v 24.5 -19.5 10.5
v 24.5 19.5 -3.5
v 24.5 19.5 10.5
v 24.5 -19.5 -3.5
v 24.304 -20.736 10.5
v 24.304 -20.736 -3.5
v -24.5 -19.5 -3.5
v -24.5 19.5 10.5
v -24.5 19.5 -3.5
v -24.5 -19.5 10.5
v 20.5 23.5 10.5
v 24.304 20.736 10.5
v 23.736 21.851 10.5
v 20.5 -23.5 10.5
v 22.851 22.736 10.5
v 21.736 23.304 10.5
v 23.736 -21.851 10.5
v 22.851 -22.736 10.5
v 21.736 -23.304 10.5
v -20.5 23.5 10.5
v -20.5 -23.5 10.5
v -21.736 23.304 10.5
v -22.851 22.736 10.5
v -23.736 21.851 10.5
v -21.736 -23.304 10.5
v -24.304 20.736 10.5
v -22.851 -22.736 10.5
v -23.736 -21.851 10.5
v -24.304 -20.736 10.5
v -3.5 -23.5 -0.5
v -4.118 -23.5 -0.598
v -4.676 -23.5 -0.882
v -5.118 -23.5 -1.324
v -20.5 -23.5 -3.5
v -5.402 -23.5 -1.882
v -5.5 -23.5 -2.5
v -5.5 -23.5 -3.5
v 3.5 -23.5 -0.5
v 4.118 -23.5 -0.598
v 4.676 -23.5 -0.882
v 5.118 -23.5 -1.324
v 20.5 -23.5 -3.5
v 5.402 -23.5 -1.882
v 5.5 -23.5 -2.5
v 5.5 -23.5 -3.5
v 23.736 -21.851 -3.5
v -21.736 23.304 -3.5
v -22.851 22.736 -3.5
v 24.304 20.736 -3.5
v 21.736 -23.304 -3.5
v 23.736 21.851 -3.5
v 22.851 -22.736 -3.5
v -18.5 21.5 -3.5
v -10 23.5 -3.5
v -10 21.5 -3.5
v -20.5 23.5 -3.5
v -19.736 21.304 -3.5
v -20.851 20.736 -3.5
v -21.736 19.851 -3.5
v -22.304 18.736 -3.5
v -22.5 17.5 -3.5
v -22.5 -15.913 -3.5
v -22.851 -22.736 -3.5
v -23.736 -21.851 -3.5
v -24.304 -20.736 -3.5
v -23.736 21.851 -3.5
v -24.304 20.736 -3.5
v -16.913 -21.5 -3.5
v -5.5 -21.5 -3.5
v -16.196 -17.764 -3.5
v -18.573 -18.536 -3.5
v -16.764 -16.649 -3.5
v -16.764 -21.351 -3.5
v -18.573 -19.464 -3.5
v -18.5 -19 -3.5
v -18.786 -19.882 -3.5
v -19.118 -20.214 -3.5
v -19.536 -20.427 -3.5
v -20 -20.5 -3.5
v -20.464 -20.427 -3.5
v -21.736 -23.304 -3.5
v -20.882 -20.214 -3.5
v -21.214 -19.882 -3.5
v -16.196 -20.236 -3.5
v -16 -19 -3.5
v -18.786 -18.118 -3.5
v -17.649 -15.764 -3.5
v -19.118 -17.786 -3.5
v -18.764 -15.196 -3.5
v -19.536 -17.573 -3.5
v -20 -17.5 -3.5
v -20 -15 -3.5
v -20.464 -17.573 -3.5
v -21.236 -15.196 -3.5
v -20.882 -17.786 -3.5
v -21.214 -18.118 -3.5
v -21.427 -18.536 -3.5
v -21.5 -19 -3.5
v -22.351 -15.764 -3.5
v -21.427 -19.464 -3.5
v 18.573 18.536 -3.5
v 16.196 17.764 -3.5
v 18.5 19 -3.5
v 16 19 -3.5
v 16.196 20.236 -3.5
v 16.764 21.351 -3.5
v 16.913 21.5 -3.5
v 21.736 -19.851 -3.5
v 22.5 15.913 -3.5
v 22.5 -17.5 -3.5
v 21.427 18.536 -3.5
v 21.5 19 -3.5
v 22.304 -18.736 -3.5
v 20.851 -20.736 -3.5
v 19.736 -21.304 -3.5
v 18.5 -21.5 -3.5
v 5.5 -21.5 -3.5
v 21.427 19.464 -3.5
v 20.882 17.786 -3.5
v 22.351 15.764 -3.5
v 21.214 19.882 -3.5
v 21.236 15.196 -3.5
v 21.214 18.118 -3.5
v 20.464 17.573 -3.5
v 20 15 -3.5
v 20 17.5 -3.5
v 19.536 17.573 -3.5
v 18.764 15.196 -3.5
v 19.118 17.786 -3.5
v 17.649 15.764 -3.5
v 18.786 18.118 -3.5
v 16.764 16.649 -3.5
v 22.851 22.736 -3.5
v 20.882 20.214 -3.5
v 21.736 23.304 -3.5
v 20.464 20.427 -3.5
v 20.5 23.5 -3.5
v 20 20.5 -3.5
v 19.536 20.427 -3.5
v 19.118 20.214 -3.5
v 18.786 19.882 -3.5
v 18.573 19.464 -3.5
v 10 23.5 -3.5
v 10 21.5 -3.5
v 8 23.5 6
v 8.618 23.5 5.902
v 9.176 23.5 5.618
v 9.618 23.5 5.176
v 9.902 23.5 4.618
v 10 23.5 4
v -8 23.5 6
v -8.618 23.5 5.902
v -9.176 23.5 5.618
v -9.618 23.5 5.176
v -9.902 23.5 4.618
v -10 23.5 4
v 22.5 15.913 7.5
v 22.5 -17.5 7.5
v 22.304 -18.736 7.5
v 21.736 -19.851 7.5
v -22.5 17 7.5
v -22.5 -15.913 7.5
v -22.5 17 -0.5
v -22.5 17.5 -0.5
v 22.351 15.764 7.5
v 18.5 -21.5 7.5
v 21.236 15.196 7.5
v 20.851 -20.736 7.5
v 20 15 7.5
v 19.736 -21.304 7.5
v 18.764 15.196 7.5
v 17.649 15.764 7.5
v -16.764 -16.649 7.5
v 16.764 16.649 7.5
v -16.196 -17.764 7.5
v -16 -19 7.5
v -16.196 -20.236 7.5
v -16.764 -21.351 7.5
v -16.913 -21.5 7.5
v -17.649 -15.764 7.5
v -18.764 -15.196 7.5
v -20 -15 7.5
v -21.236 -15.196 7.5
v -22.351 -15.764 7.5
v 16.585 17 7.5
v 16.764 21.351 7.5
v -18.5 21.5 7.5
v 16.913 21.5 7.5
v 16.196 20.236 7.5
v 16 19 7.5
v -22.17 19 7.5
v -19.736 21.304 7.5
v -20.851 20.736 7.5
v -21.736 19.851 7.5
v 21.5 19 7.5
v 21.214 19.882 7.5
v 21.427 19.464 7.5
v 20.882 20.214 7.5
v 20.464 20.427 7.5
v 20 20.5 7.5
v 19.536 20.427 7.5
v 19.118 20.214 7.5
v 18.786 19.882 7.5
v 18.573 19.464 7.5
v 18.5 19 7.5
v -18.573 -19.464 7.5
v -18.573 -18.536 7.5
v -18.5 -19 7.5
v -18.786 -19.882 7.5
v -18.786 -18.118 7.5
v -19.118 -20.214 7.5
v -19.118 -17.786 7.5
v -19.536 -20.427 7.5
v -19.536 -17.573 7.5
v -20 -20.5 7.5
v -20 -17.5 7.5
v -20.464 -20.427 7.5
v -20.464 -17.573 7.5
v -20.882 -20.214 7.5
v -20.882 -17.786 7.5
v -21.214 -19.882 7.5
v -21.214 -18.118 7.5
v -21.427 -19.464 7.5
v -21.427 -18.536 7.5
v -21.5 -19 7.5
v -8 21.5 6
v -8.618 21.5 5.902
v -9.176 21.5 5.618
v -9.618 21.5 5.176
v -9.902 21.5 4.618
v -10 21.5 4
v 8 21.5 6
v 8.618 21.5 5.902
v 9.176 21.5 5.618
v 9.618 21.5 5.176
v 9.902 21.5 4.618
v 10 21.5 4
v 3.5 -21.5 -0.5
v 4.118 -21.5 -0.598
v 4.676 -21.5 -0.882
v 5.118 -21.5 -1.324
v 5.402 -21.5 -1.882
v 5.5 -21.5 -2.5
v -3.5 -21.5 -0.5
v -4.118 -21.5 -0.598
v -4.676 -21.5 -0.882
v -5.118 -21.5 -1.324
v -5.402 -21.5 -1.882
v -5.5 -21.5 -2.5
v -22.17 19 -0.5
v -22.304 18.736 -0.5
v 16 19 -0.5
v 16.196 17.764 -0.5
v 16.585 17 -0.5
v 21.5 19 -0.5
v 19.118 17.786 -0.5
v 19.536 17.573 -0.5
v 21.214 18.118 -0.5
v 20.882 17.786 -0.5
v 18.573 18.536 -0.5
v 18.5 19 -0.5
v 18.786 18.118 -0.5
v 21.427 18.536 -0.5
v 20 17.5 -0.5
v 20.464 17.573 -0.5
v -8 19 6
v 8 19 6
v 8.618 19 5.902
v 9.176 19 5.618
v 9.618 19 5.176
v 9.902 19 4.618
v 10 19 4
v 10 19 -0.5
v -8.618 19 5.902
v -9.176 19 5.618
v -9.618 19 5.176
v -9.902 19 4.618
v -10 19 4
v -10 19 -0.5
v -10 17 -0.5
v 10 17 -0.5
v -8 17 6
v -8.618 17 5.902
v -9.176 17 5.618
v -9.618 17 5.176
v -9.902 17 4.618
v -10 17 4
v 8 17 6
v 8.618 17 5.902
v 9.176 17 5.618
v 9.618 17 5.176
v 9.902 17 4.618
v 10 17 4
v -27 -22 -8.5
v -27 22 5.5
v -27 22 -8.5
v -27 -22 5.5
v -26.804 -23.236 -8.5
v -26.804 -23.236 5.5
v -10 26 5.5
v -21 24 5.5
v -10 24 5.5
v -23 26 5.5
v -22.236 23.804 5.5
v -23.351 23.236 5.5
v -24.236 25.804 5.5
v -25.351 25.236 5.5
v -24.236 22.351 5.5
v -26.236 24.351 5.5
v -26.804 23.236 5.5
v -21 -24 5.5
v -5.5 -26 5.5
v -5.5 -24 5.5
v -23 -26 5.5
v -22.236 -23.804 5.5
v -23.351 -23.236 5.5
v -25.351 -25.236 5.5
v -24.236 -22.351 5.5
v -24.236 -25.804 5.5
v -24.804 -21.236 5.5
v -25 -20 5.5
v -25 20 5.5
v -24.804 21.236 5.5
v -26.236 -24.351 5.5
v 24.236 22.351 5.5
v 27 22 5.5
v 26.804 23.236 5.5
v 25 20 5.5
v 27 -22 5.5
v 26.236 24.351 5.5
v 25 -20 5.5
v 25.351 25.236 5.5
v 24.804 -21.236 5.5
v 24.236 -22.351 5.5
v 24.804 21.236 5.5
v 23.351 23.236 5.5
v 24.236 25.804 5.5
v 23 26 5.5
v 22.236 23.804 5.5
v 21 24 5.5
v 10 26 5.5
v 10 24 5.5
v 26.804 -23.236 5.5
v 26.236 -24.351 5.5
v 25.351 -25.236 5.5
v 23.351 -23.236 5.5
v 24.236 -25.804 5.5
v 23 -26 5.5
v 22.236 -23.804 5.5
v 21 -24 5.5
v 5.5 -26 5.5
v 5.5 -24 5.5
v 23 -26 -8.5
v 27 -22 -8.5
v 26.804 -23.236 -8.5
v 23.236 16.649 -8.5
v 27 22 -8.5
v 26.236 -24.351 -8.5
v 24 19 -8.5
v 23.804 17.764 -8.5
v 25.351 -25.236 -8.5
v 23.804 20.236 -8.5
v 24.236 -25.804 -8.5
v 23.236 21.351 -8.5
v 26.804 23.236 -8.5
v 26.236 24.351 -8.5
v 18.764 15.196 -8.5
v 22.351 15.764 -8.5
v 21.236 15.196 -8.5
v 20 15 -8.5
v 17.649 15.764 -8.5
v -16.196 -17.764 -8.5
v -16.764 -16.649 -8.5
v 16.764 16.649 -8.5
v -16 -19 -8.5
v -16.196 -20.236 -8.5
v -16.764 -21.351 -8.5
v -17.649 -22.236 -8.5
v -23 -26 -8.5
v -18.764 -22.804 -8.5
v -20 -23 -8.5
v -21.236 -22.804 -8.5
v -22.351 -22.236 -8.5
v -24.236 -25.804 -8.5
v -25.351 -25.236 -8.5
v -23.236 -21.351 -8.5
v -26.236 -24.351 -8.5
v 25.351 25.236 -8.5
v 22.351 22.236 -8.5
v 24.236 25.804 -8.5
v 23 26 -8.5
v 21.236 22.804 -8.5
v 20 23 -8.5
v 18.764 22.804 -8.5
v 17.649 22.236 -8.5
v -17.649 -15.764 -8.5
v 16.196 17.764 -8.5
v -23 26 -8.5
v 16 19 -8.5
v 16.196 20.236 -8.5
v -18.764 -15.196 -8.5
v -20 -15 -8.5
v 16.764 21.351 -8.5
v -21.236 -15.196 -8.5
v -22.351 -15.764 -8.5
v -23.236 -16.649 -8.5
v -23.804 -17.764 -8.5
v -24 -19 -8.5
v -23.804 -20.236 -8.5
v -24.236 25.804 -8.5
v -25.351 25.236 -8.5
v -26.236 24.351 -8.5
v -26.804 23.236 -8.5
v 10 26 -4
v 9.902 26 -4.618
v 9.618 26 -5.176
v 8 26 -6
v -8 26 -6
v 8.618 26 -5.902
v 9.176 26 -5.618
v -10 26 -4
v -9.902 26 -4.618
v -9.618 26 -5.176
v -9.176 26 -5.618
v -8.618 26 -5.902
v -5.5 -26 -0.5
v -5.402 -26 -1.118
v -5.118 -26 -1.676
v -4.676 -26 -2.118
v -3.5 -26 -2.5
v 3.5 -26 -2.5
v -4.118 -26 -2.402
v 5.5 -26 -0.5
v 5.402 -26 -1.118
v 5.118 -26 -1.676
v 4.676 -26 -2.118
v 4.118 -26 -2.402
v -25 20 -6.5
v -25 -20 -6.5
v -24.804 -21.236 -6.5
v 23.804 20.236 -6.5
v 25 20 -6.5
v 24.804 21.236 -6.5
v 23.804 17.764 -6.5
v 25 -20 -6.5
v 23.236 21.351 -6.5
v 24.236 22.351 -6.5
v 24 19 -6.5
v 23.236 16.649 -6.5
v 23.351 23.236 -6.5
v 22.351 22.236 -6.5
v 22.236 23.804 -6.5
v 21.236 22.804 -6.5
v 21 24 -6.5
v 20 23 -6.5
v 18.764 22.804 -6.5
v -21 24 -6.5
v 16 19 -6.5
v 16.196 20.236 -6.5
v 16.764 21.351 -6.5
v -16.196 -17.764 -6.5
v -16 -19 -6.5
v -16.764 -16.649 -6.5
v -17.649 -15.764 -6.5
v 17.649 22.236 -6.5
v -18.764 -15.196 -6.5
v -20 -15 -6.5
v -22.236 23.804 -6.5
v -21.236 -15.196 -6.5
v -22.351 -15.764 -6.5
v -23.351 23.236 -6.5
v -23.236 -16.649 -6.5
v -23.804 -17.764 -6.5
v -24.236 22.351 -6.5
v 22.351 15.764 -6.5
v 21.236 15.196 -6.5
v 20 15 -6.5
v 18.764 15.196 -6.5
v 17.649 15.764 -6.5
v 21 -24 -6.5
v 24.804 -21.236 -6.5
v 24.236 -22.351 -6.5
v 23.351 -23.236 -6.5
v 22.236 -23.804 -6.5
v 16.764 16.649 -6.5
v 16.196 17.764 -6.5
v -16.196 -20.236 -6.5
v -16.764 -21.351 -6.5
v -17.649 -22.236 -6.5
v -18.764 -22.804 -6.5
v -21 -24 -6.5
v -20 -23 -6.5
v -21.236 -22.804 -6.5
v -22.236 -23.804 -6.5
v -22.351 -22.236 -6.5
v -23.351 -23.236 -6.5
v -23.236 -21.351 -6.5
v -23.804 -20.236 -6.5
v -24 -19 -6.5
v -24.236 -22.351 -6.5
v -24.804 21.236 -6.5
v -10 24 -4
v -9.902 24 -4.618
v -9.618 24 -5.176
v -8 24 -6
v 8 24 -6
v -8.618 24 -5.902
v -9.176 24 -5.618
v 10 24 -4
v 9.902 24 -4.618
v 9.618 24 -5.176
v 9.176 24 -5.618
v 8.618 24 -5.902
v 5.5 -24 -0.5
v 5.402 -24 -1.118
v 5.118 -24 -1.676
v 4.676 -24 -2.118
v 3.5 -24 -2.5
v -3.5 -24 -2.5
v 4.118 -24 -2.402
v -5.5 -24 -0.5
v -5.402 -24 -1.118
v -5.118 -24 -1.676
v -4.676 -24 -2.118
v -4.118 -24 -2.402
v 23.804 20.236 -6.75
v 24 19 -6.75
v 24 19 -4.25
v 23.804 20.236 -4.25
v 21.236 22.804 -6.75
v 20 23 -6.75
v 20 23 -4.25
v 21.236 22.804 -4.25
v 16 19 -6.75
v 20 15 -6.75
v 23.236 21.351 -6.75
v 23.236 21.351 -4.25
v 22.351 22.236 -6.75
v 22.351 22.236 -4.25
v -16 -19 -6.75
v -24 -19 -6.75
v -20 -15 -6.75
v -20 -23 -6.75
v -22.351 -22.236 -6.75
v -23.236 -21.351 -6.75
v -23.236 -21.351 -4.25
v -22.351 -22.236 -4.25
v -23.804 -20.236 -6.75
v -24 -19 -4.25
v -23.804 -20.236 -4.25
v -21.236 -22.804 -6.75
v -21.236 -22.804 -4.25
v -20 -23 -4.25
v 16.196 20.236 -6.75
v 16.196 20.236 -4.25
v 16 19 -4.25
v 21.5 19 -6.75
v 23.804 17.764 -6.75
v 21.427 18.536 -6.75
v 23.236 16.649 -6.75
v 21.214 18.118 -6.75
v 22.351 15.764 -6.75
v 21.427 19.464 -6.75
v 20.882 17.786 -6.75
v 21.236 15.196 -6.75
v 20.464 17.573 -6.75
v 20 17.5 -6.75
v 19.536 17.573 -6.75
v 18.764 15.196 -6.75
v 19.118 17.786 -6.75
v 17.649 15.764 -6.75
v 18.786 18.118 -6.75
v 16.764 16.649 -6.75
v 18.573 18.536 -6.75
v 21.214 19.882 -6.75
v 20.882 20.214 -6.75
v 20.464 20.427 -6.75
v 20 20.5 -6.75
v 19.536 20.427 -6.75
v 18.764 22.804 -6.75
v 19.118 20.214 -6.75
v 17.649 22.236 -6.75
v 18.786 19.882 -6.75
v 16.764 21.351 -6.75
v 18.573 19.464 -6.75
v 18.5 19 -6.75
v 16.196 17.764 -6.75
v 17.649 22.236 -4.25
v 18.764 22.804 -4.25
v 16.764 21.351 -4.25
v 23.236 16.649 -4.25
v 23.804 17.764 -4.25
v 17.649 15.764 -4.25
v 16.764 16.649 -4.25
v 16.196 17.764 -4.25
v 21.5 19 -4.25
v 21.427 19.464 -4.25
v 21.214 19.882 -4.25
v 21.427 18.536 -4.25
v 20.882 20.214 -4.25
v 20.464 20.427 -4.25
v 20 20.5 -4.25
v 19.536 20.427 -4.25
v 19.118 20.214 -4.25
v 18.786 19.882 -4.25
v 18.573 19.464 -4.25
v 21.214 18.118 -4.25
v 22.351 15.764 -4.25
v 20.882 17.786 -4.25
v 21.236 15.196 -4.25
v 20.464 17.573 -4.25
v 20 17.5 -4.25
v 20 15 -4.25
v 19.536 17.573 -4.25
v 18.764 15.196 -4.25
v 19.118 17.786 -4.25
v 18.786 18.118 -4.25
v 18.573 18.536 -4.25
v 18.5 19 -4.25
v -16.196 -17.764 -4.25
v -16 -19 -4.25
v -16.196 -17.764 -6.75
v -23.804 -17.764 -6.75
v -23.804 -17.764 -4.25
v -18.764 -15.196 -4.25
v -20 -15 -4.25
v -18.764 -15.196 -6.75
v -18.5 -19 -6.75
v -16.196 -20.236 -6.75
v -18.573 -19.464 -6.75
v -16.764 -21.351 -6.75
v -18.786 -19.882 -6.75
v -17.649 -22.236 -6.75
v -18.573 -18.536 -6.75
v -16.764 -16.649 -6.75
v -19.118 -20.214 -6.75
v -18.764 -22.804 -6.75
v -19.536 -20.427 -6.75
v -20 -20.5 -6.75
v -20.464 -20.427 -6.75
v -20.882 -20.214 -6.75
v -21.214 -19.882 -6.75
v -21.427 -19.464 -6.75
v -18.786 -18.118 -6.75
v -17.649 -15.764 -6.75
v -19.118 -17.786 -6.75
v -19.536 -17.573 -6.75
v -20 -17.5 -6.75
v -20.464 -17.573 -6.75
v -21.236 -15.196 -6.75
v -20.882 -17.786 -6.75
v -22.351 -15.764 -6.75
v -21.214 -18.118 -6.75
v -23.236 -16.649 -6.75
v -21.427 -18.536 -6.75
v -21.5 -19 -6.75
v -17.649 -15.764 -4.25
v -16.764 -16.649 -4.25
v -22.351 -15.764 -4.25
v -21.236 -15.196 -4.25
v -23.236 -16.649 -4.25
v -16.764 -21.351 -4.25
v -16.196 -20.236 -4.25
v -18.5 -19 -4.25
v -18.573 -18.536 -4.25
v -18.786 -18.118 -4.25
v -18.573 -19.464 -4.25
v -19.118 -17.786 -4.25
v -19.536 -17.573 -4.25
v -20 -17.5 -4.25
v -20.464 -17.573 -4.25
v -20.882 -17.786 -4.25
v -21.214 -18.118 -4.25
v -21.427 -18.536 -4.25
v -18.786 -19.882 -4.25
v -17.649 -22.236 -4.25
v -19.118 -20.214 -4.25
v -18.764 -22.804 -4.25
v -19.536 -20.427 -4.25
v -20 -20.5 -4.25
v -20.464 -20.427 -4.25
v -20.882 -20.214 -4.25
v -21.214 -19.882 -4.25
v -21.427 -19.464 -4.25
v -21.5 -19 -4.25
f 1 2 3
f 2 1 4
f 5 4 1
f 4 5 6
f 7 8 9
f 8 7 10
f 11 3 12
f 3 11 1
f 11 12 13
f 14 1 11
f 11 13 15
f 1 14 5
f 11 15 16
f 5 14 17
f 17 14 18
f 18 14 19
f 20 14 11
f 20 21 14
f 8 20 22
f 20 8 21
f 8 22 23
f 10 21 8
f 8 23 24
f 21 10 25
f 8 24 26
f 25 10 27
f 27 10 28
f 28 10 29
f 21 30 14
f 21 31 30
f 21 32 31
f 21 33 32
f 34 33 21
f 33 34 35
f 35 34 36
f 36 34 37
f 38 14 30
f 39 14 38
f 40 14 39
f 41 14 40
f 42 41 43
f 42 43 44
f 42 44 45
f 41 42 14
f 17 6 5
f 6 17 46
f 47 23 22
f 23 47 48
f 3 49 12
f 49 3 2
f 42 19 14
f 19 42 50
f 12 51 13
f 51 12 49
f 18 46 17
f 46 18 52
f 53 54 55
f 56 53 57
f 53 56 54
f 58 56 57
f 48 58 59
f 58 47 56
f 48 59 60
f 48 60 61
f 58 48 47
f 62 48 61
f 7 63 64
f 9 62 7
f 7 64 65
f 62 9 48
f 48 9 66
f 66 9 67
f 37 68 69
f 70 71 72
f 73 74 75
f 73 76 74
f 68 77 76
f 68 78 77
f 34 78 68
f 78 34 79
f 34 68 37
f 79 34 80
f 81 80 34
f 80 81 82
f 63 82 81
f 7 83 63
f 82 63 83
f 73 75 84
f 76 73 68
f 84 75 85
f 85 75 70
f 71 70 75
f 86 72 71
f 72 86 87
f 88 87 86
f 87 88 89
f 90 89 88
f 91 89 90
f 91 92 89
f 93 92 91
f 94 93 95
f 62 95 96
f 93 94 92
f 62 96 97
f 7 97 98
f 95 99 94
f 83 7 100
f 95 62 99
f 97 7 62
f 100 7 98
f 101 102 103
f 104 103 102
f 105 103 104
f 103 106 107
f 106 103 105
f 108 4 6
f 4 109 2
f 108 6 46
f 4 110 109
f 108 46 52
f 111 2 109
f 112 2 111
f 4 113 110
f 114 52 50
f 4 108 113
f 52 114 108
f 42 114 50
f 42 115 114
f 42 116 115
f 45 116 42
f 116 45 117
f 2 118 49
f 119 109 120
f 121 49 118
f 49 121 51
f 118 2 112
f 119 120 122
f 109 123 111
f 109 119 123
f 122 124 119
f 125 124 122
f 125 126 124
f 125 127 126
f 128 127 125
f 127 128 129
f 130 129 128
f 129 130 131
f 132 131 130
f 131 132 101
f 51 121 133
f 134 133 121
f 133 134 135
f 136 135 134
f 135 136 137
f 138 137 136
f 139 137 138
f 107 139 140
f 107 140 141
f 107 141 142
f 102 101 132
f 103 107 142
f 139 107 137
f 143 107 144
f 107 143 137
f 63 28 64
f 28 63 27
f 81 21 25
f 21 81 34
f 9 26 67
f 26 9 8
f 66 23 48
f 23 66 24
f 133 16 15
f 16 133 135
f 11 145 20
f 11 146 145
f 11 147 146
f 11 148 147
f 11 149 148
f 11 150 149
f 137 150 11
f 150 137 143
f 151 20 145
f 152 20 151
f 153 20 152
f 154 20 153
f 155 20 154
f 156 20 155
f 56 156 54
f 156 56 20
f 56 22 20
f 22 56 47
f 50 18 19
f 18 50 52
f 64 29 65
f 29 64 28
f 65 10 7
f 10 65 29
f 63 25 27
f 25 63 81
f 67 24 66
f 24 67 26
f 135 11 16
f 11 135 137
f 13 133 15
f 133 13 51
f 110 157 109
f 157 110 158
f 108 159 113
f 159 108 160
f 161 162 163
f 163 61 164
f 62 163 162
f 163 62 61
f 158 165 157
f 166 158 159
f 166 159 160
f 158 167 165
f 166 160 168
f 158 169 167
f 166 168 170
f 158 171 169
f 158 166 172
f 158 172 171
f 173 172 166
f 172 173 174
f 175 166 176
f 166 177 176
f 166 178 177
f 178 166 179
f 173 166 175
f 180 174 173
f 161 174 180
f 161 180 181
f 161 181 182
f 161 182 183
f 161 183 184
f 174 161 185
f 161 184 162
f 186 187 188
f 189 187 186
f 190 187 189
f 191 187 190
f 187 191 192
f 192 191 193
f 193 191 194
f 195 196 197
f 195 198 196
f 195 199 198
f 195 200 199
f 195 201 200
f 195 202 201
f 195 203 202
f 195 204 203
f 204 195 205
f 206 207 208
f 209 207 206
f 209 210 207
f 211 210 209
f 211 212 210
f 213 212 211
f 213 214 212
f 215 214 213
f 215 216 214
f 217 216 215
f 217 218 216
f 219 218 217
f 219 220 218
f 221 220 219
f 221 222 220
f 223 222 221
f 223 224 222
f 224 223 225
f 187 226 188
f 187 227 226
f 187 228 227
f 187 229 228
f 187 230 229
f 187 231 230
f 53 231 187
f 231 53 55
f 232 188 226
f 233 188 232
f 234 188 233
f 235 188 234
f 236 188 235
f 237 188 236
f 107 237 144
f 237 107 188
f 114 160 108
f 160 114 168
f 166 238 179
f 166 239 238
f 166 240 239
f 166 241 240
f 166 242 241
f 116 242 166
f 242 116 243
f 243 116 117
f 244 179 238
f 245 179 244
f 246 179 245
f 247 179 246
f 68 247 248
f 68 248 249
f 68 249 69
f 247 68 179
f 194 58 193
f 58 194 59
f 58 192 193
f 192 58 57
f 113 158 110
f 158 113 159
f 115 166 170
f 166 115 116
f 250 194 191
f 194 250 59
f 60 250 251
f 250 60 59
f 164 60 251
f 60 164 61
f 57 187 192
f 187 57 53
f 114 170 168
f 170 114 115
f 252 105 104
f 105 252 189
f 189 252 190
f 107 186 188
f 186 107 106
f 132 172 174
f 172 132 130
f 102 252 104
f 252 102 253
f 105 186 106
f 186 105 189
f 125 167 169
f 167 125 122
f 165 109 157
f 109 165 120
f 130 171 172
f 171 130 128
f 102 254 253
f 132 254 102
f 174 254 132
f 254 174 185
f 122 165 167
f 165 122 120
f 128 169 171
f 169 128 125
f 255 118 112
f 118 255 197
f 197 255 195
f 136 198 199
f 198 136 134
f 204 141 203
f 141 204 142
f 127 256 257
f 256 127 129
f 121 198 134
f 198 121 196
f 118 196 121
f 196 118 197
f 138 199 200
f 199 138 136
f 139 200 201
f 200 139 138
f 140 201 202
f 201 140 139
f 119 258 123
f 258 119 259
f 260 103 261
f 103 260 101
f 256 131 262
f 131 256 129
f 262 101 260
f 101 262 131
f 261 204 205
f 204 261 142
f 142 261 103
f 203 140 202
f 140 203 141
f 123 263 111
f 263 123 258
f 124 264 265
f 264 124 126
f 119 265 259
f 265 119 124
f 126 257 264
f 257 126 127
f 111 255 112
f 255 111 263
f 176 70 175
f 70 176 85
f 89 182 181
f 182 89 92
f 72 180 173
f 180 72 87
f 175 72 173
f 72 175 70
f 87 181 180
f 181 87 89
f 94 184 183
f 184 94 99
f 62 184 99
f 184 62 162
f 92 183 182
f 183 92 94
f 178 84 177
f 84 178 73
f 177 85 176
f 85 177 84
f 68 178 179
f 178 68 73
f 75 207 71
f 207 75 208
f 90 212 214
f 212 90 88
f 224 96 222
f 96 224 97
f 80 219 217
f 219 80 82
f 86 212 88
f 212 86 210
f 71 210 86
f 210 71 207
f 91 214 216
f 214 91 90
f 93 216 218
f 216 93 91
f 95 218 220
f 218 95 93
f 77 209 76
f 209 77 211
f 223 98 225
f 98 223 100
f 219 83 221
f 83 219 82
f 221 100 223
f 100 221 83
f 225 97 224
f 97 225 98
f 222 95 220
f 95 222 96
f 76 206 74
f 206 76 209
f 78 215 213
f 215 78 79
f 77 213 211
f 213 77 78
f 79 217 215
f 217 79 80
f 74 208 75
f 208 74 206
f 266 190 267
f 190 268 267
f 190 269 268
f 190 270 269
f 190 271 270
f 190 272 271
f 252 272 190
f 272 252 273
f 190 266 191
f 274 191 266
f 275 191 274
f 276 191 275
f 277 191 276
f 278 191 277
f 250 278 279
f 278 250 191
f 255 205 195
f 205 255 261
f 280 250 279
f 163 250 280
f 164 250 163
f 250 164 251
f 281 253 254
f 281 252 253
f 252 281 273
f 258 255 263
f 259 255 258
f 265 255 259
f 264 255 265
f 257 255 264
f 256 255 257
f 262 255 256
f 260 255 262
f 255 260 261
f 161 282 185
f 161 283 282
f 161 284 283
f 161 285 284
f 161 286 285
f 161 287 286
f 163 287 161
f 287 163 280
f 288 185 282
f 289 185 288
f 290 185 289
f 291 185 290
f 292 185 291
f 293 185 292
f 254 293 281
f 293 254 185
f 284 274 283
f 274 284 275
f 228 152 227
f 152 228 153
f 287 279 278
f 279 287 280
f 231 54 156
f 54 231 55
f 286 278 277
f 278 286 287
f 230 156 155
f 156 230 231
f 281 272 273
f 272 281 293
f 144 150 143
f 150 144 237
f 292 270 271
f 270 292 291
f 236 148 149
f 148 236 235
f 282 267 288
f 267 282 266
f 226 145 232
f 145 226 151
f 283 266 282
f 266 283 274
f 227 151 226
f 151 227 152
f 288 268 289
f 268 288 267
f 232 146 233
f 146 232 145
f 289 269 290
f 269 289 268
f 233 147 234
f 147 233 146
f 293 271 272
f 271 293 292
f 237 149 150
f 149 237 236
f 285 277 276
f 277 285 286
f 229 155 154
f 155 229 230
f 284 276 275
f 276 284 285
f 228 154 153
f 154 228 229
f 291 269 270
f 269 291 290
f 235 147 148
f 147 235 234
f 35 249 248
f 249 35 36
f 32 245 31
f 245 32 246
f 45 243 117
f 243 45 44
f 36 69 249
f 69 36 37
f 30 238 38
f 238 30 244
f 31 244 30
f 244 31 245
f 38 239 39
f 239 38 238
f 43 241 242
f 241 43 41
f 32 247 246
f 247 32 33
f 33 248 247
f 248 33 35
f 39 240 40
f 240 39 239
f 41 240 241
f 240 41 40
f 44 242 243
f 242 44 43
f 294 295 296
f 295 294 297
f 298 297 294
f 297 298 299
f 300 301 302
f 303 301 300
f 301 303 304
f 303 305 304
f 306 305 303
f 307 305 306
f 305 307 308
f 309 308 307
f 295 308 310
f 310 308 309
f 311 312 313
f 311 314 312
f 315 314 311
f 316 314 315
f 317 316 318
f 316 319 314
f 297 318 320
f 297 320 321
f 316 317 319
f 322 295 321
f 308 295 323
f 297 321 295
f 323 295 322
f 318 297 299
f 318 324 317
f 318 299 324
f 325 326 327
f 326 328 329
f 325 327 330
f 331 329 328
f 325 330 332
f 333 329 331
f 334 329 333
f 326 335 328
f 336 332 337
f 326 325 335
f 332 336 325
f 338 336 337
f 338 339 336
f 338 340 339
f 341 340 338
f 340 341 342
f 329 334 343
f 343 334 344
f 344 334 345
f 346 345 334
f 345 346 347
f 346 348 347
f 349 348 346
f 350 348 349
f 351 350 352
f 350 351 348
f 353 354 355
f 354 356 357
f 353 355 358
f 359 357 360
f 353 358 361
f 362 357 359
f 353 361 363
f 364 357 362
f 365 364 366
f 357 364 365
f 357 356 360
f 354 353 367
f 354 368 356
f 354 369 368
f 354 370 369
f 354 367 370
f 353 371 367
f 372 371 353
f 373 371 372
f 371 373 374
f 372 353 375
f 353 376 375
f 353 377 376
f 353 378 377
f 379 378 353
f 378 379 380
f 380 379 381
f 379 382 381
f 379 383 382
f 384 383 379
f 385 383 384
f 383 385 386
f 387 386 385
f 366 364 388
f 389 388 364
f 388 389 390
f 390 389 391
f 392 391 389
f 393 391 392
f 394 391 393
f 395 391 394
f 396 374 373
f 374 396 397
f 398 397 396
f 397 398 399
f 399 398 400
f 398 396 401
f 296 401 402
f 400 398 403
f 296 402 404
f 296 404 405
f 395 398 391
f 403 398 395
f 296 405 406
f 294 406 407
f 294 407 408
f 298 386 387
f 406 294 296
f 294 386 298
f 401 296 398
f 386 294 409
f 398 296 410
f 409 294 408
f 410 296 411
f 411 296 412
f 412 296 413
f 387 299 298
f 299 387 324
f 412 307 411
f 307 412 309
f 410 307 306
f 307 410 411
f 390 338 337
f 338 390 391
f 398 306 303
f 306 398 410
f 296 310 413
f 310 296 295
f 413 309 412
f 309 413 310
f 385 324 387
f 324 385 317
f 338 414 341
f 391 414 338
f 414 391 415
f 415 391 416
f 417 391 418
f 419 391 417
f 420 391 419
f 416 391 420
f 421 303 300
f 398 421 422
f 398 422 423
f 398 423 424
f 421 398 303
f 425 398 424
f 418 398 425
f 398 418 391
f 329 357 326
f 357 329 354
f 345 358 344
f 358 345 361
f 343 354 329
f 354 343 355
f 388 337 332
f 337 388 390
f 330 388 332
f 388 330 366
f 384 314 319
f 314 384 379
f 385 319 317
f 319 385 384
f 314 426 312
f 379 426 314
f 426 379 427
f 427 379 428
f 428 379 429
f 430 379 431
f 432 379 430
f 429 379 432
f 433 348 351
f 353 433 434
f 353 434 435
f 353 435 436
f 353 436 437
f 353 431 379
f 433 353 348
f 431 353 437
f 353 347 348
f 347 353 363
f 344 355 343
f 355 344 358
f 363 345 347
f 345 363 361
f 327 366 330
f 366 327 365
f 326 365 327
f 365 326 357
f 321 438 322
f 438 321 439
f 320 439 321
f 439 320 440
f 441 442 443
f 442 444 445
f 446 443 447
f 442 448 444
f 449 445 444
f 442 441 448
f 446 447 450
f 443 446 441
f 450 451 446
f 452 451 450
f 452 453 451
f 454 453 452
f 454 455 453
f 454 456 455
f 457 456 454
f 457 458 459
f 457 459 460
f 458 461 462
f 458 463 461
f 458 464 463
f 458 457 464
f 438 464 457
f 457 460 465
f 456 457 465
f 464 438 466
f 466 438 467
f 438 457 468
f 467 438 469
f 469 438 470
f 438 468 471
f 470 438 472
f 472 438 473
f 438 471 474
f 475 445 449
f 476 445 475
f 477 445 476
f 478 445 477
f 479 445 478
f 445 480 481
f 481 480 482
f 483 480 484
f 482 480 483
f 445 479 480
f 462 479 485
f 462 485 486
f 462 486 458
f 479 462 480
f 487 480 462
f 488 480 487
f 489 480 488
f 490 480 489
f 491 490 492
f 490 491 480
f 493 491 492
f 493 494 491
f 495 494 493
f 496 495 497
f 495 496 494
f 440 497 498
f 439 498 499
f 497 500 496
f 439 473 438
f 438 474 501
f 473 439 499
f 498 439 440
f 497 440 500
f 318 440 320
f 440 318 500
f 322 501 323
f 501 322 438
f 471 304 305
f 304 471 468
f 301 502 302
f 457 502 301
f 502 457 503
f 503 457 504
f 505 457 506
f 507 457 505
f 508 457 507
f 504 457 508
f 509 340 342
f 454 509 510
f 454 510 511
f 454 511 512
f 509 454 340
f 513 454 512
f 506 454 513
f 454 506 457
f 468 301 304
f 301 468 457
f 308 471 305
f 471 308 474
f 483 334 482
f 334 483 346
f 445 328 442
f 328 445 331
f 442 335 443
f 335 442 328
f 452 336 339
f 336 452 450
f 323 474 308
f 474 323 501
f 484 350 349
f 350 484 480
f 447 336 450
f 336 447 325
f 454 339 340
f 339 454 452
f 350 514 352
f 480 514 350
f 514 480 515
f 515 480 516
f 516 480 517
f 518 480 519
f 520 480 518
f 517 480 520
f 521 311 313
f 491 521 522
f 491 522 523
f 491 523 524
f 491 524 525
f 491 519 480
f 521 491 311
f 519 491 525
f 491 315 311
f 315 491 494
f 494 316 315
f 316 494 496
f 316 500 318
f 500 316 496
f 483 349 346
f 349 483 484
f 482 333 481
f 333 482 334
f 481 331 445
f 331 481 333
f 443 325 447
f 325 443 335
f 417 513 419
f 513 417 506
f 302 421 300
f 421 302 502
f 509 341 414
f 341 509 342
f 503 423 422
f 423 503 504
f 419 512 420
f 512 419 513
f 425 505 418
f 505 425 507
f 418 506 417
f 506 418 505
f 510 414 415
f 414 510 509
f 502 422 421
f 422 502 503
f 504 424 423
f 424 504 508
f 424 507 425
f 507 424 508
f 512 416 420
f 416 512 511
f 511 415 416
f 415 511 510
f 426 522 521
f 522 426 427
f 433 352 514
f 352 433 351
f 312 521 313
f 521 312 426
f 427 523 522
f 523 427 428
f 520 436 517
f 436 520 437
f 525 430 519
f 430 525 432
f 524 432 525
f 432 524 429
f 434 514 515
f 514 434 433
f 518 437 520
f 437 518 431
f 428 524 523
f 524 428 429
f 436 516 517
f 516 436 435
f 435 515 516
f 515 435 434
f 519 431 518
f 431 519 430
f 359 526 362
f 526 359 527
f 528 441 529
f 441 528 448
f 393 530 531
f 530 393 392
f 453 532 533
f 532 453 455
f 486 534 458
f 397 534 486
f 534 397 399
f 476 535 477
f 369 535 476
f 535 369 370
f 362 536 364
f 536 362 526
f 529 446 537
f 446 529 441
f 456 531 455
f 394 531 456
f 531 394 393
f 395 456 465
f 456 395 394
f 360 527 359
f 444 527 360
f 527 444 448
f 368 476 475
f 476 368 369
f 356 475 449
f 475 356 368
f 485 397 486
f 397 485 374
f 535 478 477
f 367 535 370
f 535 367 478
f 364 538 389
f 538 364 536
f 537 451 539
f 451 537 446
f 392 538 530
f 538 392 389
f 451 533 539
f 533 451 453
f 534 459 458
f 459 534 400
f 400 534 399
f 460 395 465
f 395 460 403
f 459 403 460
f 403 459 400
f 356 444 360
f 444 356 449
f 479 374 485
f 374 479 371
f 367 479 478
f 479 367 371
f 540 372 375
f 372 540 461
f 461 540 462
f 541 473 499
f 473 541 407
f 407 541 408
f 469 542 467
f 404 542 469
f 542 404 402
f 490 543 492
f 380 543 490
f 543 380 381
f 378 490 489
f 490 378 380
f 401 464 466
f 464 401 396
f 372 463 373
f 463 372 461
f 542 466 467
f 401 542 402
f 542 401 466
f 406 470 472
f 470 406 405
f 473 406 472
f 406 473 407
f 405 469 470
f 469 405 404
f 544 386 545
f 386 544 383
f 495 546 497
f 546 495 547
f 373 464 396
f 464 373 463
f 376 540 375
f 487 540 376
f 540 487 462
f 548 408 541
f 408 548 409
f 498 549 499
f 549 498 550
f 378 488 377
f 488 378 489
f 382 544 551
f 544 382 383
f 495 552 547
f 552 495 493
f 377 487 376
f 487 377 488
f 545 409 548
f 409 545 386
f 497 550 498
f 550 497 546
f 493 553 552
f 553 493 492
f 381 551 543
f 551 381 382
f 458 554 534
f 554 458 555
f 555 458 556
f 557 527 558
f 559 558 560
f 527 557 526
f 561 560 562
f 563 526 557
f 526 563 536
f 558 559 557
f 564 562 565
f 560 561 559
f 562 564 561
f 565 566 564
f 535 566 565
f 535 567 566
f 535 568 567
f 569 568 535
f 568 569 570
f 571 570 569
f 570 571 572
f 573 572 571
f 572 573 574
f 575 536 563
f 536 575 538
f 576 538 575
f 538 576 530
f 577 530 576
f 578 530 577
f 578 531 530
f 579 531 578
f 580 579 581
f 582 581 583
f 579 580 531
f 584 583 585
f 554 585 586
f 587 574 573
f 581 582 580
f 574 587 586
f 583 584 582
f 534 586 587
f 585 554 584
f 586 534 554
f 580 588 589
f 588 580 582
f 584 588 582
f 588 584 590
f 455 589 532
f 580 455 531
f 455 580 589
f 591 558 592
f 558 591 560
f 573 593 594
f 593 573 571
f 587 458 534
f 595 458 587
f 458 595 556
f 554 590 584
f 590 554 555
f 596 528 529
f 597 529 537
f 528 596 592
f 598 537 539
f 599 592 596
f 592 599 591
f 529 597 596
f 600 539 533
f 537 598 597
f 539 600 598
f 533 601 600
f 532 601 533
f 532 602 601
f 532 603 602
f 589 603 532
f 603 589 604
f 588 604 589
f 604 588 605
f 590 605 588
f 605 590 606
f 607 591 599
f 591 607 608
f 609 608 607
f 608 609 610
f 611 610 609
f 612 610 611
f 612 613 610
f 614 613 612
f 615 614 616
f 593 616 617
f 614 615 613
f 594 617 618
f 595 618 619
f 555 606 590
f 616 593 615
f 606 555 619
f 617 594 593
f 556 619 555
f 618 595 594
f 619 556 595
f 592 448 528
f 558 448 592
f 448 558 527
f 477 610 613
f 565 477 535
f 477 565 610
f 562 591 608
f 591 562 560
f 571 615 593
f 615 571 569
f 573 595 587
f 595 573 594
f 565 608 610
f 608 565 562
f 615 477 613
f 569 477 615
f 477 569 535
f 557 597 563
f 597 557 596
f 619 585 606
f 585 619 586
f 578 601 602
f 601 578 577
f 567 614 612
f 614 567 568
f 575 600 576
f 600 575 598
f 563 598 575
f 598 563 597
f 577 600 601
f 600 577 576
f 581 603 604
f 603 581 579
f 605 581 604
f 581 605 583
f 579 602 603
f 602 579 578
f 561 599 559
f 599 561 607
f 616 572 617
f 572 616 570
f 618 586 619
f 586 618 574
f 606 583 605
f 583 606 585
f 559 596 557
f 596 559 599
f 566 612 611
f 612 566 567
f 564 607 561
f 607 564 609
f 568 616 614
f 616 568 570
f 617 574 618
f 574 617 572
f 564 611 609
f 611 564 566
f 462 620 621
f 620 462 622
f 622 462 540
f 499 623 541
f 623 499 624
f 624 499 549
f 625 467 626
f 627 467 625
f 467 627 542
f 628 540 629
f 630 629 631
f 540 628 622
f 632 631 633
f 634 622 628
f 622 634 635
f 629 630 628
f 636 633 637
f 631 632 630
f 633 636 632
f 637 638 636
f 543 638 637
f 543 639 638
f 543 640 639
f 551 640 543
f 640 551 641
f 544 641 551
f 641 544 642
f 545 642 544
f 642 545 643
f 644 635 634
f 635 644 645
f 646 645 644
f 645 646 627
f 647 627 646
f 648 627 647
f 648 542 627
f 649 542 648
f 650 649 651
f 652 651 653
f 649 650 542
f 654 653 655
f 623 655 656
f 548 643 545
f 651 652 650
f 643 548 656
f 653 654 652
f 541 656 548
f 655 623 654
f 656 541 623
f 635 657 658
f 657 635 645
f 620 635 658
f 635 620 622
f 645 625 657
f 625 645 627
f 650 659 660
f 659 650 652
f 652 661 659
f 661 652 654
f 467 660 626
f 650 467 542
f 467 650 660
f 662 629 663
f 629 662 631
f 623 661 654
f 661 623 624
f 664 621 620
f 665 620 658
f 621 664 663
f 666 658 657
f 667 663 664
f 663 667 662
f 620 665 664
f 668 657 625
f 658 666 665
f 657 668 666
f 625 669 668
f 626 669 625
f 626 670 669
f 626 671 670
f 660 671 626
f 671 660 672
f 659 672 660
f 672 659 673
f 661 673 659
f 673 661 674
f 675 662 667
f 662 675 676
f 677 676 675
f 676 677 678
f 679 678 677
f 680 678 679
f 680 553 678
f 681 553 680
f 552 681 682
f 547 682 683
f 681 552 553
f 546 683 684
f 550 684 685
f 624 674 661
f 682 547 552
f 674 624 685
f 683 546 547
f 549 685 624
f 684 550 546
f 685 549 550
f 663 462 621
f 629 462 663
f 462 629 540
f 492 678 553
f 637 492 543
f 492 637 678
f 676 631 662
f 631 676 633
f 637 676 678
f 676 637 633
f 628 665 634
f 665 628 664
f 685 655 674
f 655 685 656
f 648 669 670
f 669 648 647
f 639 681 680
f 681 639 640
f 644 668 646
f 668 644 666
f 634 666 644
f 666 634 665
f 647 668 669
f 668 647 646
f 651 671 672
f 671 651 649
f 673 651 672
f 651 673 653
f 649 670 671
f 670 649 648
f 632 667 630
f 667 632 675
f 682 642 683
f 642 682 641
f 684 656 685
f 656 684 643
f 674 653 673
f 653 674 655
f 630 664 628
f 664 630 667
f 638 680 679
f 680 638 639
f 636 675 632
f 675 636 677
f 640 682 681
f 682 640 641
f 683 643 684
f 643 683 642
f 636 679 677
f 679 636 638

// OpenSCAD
/*
    tamaño de la caja interna y borde
*/
X=50;
Y=48;
Z=13;
E=4;
$fn=20;

module base () {
// base
difference() {
translate([0,0,-2])
   minkowski () {
    cube([X+E-8,Y+E-8,Z],center=true);
   cylinder(d=8, h=1);
}

minkowski() {   
   cube([X-8,Y-8,Z],center=true);
   cylinder(d=8, h=1);
}
minkowski () {
    translate([0,24,1])
    cube([20-4,20-4,13-3],center=true);
   rotate([90,0,0]) 
    cylinder(d=4, h=1);
}
// cable
minkowski () {
    translate([0,-24,3])
    cube([7,11,7],center=true);   
   rotate([90,0,0]) 
    cylinder(d=4, h=1);
}

translate([0,Y/2-E-4,4])
        cube([X-E,E/2,Z-E],center=true); 
            // tornillos

       
        translate([(X/2)-5,(Y/2)-5,-8])
            difference() {
        cylinder(h=4, r=E, center=true);
      
        }
        translate([(X*-1/2)+5,(Y*-1/2)+5,-8])
          difference() {
        cylinder(h=4, r=E, center=true);

        }
            
        
}


    // tornillos
        translate([(X/2)-5,(Y/2)-5,-5.5])
            difference() {
              cylinder(h=2.5, r=E, center=true);
              cylinder(h=2.5, r=1.5, center=true);
            }
        translate([(X*-1/2)+5,(Y*-1/2)+5,-5.5])
          difference() {
            cylinder(h=2.5, r=E, center=true);
            cylinder(h=2.5, r=1.5, center=true);
          }

}


 
/*
font="Oxygene 1";

// texto
 linear_extrude(height = 0.5) {
    text("RETRO", font = font);
    translate([0,10,0])
    text("JOYSTICK", font = font, size=7);
}
 
 */

module tapa () {
    // tapa
    difference() {
           union() {
        difference() {
            translate([0,0,3])
               minkowski () {
                cube([X+E-13,Y+E-13,Z],center=true);
               cylinder(d=8, h=1);
            }
            // interior
            minkowski() {   
               cube([X-13,Y-13,Z],center=true);
               cylinder(d=8, h=1);
            }
            }
        translate([0,Y/2-E-2,4])
        cube([X-E,E/2,Z-E],center=true); 
            // tornillos
        translate([(X/2)-5,(Y/2)-5,3])
            difference() {
        cylinder(h=Z, r=E, center=true);
          cylinder(h=Z, r=1.5, center=true);
        }
        translate([(X*-1/2)+5,(Y*-1/2)+5,3])
          difference() {
        cylinder(h=Z, r=E, center=true);
          cylinder(h=Z, r=1.5, center=true);
        }
            }
      
        // db9
        minkowski () {
            translate([0,24,0])
            cube([20-4,20,8],center=true);  
           rotate([90,0,0]) 
            cylinder(d=4, h=1);
        }
        // cable
        minkowski () {
            translate([0,-24,-6])
            cube([7,10,7],center=true);   
           rotate([90,0,0]) 
            cylinder(d=4, h=1);
        }
    }

}

tapa();
base();
